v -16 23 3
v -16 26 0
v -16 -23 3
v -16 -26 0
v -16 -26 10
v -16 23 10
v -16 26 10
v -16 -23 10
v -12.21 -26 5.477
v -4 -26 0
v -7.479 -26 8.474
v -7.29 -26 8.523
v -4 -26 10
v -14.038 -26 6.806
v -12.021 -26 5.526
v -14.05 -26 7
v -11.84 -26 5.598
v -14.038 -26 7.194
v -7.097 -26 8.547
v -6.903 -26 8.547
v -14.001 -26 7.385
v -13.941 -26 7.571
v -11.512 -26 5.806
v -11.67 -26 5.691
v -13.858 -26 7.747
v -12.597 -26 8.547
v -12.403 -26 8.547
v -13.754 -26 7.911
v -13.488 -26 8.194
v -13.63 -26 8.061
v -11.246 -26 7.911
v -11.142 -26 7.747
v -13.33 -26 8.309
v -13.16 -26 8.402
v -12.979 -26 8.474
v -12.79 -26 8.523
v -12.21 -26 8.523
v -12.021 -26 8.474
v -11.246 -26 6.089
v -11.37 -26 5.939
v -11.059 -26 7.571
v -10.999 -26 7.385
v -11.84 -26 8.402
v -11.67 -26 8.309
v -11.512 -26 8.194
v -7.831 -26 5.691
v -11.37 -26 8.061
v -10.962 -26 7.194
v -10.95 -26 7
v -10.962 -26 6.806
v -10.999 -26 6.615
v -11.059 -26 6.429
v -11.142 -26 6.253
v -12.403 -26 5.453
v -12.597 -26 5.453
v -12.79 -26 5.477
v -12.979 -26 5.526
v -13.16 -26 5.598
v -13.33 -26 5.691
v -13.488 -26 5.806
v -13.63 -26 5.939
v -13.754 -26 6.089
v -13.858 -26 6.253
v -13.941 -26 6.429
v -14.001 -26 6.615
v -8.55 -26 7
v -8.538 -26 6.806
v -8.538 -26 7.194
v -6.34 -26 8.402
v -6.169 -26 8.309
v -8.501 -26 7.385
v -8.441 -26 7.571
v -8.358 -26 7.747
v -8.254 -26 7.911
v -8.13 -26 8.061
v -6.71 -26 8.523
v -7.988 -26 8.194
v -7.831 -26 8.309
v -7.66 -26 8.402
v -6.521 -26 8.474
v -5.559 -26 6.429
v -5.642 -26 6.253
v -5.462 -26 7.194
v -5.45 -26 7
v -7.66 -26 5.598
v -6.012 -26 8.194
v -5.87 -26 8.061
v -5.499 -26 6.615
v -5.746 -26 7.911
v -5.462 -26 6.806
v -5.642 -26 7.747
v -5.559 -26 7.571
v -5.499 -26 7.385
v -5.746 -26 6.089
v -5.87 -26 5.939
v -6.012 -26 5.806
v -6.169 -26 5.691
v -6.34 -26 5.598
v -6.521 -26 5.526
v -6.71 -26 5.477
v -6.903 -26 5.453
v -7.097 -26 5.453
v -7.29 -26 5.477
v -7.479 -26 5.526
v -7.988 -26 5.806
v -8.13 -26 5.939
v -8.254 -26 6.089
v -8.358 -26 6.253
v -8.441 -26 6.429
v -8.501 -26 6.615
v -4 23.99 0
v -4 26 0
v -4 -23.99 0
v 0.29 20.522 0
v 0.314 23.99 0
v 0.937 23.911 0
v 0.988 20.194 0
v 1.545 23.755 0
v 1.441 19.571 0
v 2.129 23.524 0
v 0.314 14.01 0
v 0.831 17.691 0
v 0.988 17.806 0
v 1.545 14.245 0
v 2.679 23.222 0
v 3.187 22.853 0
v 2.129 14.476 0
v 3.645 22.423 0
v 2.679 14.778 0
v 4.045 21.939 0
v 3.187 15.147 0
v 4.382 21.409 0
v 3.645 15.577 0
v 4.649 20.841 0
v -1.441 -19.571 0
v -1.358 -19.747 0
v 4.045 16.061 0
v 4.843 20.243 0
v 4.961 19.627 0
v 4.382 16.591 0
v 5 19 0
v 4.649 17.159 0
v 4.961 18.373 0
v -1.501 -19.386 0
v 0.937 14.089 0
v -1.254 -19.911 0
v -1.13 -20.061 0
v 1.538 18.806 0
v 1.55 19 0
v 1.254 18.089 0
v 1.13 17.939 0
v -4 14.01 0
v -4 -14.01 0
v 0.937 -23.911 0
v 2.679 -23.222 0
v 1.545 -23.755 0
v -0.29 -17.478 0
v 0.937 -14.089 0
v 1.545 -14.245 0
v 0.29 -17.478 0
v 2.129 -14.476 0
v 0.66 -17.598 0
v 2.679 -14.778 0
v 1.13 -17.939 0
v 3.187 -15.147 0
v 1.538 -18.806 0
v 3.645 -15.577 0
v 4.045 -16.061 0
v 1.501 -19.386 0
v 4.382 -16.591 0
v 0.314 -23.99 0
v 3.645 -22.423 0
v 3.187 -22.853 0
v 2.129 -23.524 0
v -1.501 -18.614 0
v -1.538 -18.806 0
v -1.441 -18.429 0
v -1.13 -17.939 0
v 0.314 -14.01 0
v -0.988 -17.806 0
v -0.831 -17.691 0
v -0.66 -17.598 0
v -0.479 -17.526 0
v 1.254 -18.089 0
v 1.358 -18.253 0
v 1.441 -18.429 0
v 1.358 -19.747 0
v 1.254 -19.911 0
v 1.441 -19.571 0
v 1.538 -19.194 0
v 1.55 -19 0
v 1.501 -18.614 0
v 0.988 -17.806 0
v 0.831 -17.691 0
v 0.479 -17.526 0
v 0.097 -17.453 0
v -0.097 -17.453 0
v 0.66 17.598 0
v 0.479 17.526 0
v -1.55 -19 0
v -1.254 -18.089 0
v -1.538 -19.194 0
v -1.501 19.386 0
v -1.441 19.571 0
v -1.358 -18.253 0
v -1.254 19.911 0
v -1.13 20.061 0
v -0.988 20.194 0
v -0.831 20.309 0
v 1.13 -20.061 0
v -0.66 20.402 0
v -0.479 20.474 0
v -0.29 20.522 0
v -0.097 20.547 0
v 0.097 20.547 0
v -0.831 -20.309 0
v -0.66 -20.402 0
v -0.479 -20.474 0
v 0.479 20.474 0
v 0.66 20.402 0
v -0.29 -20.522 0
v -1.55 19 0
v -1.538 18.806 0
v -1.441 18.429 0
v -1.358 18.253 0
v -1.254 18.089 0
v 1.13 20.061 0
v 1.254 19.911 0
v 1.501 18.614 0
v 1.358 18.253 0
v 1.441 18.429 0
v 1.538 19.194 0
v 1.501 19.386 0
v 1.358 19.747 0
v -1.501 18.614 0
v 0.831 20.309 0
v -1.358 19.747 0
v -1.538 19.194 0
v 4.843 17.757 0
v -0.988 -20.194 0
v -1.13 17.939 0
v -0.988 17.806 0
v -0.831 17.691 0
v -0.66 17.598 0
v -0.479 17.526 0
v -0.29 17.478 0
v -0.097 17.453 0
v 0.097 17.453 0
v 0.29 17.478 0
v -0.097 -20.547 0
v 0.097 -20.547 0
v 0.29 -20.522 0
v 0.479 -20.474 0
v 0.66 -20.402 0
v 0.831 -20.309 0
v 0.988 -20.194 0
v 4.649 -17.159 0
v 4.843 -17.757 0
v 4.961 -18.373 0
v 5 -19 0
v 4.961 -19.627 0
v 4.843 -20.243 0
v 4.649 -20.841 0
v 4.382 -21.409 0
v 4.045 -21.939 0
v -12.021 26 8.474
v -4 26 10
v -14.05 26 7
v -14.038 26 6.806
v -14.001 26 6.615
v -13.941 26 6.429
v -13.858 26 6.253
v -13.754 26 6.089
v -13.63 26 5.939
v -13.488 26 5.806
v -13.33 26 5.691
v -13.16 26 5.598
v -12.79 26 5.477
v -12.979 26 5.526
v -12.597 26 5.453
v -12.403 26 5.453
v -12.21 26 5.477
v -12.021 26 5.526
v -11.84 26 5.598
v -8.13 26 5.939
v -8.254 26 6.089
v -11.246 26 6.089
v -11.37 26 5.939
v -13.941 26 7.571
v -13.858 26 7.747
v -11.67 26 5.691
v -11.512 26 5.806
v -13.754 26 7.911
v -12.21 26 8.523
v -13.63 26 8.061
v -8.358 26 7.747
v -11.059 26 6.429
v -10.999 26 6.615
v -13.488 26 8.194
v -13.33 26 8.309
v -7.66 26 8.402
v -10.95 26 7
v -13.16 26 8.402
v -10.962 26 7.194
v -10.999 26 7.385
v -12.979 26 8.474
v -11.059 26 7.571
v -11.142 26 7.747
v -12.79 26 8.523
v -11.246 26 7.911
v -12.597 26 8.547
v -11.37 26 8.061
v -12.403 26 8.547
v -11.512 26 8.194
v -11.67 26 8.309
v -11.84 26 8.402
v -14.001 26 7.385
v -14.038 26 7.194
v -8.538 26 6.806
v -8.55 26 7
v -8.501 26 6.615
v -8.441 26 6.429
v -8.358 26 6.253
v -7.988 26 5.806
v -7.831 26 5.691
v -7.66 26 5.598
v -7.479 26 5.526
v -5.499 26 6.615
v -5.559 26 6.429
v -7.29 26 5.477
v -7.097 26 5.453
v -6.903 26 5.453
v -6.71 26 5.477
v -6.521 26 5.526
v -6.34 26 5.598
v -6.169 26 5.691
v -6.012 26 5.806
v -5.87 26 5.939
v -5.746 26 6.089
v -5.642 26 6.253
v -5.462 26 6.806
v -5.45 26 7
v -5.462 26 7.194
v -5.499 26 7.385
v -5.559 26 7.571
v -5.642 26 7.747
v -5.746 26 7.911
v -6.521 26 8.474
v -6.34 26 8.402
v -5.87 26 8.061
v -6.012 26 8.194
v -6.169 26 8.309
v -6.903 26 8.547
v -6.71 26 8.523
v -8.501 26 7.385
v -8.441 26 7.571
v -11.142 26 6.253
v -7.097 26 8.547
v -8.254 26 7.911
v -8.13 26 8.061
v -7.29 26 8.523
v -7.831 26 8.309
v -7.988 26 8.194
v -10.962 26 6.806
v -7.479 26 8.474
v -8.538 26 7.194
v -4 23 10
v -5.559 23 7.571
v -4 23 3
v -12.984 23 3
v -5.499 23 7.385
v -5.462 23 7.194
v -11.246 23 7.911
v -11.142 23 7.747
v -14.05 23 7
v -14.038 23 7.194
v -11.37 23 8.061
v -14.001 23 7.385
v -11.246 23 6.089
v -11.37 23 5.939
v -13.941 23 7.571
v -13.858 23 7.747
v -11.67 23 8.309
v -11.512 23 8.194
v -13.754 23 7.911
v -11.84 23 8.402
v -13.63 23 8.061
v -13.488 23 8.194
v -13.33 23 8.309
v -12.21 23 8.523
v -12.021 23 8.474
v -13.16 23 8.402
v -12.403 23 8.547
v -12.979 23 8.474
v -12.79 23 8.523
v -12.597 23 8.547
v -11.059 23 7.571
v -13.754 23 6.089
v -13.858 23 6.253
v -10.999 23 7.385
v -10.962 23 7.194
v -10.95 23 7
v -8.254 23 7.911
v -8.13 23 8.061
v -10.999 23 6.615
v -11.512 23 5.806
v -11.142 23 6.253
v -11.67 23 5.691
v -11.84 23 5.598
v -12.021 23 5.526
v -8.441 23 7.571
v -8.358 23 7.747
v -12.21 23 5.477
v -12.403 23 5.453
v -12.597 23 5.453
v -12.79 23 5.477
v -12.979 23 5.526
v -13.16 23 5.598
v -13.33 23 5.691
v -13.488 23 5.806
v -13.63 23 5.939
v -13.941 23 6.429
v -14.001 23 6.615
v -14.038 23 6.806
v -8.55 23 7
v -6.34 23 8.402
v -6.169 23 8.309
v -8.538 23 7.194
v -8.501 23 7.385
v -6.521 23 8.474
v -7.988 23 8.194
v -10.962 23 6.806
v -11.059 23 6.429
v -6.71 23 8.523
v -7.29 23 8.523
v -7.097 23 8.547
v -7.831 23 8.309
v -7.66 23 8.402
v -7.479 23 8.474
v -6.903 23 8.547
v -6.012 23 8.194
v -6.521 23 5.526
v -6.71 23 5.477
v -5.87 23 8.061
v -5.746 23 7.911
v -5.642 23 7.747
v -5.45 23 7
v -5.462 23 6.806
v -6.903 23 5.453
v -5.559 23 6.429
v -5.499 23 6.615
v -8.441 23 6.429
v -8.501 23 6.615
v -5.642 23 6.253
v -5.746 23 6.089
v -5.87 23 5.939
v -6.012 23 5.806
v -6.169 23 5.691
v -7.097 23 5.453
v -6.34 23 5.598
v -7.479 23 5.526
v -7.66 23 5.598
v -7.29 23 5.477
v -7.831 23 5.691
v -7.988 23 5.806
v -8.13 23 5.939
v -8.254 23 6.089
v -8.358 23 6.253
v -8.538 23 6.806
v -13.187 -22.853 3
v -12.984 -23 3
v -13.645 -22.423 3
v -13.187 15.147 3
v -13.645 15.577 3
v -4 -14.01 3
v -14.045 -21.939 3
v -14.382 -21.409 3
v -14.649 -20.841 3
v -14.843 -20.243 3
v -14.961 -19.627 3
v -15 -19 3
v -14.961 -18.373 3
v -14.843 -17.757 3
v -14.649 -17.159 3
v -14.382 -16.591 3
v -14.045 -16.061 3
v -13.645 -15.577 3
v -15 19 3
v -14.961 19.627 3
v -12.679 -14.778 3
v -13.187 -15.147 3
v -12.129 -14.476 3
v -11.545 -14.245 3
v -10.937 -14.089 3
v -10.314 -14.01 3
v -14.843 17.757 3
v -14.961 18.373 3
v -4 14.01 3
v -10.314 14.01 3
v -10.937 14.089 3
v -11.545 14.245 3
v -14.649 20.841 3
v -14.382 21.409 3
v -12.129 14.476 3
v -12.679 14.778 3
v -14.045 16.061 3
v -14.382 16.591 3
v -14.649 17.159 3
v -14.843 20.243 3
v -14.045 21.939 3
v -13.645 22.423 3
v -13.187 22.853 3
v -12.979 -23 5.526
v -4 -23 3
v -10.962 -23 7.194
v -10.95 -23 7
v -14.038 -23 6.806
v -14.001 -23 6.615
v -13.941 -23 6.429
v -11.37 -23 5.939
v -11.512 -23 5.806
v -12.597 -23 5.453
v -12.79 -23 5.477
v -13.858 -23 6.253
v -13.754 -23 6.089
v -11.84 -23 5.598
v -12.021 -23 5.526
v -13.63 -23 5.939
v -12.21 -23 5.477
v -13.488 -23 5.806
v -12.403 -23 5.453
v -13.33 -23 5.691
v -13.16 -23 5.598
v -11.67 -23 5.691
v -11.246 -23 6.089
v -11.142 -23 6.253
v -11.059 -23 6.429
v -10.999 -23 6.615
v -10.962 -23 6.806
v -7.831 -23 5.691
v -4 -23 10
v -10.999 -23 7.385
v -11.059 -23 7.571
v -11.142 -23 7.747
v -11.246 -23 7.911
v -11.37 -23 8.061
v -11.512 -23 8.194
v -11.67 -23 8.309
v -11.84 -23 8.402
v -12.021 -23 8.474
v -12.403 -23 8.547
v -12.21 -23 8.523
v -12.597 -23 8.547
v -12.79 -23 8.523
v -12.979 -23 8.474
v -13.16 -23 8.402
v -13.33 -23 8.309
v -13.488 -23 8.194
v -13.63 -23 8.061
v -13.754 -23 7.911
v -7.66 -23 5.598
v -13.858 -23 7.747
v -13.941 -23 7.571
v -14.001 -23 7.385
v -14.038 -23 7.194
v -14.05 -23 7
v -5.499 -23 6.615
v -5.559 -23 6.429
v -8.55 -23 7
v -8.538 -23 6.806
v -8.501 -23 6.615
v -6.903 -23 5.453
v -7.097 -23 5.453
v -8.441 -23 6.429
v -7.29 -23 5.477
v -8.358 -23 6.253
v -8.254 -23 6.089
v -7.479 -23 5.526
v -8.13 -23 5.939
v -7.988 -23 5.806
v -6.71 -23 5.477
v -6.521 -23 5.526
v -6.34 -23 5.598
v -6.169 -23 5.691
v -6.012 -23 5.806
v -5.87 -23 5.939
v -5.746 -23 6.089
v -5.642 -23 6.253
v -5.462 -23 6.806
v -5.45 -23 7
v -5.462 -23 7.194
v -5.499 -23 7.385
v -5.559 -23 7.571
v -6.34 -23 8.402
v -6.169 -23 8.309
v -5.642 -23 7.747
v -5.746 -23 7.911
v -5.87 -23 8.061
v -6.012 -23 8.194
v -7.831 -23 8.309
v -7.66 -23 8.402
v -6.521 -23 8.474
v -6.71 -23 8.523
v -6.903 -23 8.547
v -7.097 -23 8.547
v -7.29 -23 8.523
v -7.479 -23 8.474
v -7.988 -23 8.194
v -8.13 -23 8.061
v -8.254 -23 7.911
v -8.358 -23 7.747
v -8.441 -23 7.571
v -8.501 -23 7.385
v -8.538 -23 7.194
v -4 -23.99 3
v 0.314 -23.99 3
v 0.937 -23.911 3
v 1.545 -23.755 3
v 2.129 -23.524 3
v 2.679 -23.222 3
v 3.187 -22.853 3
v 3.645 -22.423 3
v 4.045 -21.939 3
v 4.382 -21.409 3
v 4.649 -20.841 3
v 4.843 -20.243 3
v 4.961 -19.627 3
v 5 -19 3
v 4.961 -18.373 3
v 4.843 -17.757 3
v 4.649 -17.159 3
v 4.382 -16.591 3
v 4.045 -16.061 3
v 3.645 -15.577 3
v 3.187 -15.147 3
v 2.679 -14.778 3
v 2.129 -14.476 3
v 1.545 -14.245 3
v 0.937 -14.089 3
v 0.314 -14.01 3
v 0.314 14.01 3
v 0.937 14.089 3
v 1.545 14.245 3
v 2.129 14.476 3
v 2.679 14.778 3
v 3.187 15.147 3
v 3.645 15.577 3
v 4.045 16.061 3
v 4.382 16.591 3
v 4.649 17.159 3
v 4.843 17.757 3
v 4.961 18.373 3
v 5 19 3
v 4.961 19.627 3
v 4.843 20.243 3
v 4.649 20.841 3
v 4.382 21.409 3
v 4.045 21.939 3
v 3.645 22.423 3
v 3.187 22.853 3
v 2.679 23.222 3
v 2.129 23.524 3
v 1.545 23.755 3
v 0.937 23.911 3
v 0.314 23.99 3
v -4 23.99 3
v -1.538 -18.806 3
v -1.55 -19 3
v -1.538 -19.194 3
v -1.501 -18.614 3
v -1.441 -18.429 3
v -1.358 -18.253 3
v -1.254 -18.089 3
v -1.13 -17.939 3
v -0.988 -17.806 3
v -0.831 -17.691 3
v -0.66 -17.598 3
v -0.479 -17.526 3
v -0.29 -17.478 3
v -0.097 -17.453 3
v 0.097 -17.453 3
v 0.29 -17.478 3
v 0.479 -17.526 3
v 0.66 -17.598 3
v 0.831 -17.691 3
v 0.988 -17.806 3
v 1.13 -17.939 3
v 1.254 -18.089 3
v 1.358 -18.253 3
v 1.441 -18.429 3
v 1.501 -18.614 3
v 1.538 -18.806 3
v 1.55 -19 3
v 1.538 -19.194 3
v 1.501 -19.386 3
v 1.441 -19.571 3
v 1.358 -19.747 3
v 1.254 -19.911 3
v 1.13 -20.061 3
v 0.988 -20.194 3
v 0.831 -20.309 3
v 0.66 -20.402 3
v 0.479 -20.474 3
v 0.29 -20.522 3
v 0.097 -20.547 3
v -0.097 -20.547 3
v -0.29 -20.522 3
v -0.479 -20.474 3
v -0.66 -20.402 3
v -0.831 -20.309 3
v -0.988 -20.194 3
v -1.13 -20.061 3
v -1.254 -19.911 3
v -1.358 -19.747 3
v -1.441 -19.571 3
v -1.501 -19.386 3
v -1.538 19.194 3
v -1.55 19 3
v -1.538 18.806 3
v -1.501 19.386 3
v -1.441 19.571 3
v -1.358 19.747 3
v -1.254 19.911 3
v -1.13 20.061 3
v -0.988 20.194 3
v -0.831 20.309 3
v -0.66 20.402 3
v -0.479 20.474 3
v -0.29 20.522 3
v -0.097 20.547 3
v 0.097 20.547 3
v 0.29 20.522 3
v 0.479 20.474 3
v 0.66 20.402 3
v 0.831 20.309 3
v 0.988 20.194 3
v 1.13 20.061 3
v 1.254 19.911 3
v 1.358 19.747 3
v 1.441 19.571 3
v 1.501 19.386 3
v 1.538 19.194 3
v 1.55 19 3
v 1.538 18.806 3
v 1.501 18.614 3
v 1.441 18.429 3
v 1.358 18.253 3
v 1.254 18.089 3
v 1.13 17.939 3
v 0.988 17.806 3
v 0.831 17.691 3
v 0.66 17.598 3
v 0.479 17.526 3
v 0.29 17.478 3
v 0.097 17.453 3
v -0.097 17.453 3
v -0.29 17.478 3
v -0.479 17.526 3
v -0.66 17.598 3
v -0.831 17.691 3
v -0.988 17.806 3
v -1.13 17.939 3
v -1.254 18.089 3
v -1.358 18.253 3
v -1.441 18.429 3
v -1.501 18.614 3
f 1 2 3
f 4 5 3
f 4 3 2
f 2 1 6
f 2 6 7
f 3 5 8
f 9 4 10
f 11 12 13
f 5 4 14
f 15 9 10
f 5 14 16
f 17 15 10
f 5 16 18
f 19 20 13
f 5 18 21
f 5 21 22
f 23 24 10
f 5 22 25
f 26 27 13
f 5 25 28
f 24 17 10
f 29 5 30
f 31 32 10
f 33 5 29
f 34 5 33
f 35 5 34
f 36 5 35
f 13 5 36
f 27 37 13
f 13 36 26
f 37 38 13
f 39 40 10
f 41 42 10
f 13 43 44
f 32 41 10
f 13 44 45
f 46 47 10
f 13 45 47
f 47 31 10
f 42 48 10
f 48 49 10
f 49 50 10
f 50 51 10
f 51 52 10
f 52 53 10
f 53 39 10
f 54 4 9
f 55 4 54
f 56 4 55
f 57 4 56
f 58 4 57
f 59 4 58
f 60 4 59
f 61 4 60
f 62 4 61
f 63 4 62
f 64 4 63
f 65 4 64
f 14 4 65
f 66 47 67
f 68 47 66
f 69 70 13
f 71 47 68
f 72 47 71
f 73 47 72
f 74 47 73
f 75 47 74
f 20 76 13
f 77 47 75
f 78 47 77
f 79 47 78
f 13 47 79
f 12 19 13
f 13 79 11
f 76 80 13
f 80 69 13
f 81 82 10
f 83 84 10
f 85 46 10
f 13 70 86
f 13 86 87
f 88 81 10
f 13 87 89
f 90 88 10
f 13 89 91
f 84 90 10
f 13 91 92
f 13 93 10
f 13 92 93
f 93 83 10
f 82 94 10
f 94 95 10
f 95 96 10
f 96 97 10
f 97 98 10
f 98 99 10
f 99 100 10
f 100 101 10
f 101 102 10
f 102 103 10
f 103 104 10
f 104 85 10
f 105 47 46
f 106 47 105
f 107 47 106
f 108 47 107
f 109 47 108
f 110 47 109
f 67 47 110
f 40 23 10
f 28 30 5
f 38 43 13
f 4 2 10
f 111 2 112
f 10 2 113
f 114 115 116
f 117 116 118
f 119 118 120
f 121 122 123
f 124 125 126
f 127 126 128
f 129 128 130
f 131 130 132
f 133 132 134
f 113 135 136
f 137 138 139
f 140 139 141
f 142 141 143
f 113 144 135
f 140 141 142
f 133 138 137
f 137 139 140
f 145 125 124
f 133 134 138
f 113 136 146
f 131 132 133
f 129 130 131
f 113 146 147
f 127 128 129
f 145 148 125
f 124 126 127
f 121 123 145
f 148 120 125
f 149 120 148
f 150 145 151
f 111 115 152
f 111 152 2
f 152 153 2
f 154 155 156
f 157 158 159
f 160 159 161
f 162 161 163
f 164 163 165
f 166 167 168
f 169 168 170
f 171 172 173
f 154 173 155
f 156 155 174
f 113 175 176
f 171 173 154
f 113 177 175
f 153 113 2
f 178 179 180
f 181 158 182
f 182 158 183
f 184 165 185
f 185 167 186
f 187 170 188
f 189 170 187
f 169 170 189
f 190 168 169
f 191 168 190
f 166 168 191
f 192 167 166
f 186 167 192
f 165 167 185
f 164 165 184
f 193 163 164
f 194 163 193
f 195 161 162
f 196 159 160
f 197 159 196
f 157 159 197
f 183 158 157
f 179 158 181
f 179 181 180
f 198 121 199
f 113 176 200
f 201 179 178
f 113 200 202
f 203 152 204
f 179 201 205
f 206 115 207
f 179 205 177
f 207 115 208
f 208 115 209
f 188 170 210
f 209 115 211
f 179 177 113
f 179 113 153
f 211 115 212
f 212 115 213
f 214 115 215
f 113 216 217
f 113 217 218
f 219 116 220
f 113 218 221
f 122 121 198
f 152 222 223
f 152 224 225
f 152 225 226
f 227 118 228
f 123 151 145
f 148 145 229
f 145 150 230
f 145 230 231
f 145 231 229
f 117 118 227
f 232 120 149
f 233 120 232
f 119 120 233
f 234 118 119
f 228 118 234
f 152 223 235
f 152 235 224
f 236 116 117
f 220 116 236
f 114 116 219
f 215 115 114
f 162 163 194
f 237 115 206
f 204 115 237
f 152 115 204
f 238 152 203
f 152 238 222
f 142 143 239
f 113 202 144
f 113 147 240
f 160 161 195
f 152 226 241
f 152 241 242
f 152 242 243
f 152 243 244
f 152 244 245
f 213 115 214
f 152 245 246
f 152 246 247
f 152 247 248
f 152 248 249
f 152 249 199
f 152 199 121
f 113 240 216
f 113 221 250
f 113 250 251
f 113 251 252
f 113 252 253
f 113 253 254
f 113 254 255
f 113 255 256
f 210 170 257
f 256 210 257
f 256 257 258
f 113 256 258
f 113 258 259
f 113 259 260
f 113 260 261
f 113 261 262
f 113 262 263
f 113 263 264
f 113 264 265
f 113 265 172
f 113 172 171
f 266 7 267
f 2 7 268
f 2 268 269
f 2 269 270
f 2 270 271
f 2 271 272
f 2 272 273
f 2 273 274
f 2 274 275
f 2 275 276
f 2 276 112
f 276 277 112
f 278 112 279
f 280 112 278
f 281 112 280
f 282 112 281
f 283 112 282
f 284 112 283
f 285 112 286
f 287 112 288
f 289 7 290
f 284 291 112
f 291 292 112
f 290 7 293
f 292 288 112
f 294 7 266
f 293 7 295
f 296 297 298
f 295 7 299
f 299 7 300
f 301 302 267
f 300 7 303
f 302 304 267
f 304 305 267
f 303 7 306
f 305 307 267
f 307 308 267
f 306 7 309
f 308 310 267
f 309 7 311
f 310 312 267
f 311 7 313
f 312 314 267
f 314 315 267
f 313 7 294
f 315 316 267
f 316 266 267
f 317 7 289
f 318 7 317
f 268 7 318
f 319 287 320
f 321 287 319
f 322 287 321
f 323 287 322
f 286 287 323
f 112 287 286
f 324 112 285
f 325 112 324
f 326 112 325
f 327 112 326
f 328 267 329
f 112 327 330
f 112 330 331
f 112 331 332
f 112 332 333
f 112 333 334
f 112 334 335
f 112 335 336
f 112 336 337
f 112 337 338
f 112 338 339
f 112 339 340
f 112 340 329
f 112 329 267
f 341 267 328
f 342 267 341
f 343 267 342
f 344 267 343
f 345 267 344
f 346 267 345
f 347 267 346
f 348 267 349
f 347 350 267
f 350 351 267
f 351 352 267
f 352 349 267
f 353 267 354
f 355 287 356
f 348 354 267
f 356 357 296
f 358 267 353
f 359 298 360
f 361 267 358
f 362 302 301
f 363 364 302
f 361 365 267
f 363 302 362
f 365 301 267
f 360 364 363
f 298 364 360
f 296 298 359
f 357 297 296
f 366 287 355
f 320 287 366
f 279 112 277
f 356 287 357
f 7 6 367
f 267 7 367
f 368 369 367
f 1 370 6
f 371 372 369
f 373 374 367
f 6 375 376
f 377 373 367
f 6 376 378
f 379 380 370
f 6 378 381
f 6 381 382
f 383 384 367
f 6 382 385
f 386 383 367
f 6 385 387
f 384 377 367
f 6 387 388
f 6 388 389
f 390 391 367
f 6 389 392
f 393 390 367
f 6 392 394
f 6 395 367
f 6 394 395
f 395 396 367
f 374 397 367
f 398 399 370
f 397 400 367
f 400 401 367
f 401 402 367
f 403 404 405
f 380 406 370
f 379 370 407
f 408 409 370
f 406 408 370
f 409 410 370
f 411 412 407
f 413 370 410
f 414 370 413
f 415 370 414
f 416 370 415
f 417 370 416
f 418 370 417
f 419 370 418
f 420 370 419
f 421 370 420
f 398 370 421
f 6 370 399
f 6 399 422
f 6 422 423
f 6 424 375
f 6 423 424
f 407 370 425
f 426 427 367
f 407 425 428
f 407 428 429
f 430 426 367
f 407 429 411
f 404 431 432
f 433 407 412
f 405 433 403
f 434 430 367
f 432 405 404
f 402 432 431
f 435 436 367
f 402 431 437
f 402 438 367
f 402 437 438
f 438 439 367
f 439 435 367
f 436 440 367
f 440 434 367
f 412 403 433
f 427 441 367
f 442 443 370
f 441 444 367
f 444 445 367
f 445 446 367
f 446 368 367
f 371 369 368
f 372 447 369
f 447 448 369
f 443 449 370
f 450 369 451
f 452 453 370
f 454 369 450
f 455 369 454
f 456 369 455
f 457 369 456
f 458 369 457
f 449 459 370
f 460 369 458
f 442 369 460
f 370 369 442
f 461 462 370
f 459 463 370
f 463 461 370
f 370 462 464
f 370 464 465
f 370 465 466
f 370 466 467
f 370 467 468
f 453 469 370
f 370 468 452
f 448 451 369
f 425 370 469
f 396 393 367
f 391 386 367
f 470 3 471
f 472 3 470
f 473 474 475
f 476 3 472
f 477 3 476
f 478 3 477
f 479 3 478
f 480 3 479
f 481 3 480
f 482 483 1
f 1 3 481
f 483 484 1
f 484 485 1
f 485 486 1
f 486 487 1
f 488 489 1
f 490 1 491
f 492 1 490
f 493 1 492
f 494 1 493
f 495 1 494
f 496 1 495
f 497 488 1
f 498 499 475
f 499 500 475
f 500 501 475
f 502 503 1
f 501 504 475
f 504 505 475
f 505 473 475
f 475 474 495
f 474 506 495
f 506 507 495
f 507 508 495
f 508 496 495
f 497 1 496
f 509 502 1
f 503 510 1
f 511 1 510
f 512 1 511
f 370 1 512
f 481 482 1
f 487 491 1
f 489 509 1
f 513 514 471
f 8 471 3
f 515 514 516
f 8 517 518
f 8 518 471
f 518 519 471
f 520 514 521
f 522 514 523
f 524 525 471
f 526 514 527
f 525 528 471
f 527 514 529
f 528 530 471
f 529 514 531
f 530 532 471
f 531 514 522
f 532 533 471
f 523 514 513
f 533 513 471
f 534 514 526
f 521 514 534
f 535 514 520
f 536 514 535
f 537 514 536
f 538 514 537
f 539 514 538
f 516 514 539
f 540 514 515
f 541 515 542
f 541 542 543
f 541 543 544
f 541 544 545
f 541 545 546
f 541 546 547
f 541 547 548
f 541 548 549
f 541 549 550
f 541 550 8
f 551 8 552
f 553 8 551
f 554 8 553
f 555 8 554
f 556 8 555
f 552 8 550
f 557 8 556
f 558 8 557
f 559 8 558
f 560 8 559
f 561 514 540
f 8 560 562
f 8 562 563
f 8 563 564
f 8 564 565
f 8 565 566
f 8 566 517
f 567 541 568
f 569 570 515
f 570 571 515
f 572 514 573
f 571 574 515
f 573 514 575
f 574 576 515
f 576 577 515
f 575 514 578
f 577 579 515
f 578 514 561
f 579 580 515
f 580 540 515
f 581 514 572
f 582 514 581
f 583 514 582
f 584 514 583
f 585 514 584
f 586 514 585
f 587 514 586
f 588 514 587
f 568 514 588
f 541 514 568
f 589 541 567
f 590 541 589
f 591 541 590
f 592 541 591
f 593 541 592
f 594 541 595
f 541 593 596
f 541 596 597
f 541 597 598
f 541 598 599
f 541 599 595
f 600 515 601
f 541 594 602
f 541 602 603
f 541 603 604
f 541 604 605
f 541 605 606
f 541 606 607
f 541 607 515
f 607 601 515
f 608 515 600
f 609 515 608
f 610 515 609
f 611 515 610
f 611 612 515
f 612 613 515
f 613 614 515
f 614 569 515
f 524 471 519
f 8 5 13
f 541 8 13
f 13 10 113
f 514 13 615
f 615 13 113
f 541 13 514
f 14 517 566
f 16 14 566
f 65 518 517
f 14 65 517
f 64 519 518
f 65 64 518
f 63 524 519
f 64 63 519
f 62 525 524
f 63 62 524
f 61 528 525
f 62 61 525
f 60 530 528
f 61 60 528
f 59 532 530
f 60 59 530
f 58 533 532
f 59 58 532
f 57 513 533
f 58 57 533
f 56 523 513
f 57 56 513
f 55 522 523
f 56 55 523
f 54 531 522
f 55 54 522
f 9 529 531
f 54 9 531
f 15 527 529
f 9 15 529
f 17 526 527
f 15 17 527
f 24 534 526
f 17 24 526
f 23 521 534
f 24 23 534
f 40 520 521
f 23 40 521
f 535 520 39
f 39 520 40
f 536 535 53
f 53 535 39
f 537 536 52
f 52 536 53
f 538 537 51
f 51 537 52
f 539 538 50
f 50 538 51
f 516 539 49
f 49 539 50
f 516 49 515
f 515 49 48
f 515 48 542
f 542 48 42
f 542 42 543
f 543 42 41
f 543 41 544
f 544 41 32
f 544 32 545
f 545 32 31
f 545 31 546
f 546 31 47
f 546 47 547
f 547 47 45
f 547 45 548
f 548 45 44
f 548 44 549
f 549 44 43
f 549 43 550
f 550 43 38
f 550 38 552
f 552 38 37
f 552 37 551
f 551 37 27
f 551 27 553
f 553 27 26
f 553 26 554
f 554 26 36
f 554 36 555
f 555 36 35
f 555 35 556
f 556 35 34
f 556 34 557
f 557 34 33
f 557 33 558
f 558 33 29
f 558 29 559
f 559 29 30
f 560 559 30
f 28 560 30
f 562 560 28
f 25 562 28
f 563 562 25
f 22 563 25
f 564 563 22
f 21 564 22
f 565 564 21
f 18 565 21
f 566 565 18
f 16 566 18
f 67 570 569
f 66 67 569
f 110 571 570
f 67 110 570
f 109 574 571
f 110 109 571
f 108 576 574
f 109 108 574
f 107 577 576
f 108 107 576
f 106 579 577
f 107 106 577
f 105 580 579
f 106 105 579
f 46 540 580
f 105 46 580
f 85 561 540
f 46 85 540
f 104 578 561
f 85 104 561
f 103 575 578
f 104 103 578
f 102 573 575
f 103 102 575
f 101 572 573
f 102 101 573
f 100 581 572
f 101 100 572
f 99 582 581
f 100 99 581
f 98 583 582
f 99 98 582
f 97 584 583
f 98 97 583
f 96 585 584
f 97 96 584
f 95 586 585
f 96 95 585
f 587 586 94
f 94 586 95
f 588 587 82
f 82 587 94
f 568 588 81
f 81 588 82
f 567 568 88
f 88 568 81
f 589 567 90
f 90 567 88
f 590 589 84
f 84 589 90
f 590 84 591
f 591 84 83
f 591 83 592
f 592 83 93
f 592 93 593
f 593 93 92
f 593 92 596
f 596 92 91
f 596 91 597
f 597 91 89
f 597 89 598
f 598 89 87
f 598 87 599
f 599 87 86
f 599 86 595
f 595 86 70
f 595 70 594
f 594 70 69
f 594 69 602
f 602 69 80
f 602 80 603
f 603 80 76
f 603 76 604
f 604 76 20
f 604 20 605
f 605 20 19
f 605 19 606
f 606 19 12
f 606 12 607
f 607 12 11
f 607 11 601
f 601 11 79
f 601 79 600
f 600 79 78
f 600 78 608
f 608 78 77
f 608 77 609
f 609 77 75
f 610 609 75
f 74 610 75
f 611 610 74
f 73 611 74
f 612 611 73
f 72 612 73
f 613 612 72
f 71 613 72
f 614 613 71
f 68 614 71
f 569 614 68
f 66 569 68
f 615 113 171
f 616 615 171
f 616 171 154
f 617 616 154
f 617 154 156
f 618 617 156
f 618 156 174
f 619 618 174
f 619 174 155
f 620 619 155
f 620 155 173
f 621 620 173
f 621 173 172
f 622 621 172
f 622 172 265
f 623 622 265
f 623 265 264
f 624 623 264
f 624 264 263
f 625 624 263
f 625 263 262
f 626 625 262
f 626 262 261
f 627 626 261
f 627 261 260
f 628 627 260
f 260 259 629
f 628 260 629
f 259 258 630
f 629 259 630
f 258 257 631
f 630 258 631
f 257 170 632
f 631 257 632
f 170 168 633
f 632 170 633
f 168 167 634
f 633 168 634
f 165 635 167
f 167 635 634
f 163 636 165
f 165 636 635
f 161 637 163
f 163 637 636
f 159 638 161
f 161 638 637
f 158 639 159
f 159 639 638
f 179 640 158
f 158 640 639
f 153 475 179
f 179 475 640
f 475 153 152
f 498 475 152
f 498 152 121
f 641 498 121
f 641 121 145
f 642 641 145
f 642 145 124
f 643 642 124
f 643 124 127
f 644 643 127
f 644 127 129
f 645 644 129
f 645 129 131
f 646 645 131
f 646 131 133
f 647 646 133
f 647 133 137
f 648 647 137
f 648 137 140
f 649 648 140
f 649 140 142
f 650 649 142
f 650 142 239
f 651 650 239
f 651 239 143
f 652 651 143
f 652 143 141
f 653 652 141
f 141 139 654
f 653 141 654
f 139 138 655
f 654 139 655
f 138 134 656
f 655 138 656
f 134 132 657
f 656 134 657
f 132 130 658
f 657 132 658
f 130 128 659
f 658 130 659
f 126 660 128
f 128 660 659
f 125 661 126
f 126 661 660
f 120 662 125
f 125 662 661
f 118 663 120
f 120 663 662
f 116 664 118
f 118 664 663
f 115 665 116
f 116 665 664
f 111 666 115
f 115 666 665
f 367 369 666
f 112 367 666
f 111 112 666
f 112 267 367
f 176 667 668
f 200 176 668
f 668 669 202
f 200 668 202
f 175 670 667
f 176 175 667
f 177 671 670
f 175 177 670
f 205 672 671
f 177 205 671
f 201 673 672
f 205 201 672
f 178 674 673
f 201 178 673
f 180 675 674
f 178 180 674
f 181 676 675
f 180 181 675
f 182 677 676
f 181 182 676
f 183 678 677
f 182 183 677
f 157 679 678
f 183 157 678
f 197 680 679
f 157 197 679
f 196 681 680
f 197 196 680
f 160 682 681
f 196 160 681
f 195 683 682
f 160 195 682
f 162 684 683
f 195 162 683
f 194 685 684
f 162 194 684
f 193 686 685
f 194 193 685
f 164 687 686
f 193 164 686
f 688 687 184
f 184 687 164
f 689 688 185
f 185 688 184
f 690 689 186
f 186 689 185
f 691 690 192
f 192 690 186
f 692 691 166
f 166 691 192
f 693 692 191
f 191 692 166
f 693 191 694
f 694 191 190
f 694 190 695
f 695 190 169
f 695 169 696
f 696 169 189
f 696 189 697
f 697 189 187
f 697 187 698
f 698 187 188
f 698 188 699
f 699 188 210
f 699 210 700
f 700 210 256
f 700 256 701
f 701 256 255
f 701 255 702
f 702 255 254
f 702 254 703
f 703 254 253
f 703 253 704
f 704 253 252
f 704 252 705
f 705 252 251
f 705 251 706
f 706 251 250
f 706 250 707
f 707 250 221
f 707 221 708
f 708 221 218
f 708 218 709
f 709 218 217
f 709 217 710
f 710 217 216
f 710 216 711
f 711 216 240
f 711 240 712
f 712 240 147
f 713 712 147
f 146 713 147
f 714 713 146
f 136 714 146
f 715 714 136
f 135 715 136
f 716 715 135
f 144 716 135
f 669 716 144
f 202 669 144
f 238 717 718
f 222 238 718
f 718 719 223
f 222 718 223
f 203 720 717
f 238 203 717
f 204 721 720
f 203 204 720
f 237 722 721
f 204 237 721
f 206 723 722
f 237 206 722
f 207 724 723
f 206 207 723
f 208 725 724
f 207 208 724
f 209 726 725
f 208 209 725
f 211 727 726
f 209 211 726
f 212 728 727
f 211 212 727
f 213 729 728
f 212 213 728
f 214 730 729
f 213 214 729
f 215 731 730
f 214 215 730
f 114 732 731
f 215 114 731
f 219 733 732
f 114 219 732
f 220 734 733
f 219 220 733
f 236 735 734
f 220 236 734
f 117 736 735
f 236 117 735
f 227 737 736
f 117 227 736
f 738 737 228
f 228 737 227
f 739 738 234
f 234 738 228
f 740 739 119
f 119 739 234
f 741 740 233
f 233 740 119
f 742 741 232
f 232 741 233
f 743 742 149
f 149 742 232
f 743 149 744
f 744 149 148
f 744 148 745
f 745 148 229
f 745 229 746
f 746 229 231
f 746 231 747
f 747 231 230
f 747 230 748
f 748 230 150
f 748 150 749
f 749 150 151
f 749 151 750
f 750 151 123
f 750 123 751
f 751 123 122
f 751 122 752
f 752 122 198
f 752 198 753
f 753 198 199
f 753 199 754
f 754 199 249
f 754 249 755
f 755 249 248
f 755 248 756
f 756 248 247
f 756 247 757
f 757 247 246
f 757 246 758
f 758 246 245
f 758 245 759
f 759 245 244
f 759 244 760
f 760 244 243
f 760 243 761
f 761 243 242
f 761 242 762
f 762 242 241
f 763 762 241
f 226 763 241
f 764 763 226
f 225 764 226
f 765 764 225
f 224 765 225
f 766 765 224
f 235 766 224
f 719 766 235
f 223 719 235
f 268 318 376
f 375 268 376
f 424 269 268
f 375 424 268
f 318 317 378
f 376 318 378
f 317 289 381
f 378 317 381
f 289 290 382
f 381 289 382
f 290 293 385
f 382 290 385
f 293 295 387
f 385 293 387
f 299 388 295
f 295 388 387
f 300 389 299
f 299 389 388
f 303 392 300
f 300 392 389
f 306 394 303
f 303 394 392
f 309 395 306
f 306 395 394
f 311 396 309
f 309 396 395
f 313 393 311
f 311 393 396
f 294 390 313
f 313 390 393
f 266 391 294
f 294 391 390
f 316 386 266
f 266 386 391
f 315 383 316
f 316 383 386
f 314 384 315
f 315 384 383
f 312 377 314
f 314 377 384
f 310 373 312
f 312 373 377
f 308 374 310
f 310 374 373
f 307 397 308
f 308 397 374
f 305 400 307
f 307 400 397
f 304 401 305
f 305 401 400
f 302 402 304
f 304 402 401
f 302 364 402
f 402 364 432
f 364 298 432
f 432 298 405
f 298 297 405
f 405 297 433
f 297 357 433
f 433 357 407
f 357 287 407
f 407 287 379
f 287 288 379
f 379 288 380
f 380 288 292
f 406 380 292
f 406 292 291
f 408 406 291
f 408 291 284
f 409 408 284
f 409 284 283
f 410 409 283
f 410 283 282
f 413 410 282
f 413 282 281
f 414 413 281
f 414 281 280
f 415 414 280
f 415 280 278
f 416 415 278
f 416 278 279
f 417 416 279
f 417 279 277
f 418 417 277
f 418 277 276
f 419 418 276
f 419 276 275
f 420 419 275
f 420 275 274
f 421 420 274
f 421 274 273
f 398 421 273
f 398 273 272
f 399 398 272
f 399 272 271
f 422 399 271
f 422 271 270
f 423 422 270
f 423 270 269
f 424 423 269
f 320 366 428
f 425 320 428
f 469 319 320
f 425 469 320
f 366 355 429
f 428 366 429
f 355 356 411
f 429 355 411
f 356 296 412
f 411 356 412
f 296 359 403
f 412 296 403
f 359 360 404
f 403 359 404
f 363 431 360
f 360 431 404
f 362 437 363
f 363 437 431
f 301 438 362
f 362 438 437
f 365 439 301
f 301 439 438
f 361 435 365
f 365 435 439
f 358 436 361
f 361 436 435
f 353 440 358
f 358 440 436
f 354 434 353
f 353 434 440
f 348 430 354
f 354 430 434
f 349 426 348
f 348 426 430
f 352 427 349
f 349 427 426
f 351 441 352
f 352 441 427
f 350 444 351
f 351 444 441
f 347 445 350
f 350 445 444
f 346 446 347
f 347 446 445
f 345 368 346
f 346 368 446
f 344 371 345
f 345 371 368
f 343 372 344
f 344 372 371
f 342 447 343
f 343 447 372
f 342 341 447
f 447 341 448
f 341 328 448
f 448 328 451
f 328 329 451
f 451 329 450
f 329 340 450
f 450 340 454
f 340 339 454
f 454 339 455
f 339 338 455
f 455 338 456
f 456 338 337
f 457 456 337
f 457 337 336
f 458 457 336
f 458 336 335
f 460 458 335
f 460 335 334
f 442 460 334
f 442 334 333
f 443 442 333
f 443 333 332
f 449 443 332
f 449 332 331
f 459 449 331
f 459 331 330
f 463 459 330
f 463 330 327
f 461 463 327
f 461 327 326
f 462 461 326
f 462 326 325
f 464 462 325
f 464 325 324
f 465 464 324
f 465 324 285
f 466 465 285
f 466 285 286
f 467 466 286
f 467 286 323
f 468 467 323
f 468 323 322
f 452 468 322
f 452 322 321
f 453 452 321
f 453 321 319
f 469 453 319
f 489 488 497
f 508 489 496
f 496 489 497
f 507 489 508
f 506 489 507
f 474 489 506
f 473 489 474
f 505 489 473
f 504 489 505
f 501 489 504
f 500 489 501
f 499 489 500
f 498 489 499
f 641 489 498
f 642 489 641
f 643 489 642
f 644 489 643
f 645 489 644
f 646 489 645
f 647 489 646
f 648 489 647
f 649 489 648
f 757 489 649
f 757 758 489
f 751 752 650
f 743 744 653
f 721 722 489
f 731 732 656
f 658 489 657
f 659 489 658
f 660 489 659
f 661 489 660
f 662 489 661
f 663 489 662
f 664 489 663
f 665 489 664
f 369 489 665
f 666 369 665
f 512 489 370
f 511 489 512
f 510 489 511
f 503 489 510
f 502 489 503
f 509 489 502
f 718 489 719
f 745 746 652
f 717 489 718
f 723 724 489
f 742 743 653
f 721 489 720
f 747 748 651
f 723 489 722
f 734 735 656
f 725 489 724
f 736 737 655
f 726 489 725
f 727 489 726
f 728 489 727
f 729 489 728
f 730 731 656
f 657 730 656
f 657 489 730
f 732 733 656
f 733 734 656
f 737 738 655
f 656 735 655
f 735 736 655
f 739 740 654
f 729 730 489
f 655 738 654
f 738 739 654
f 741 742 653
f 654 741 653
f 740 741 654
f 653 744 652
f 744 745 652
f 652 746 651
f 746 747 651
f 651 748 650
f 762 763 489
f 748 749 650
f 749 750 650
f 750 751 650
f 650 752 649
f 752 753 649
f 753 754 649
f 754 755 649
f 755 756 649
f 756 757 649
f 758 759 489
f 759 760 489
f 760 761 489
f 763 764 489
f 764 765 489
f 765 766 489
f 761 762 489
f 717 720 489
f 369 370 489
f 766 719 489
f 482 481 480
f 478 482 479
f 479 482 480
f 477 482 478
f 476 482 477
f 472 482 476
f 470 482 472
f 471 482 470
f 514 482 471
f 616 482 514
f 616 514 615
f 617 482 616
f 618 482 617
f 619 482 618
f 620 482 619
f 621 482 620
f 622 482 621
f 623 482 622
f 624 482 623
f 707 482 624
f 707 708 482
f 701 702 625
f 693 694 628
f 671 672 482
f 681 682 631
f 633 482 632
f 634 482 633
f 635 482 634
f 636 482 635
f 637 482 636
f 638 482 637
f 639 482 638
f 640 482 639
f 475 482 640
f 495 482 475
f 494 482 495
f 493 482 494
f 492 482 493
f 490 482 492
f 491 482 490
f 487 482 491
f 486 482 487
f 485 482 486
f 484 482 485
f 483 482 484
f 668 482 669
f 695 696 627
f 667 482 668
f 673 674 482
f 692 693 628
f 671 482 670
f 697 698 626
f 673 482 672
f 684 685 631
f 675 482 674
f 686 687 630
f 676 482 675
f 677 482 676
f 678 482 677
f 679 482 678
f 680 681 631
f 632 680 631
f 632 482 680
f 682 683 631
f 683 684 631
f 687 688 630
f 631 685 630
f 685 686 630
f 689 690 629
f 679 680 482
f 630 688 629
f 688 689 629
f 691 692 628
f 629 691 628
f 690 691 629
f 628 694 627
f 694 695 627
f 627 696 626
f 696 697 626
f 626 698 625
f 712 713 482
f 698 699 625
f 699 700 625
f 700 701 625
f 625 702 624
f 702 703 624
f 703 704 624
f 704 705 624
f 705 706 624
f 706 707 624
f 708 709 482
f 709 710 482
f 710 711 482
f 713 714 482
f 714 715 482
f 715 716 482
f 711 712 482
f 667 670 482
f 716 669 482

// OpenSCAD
$fn = 50;


/*
difference(){
	cylinder(h = 15, r=19.5);	

	translate([0,0,-1])
	cylinder(h = 17, r=17.5);
}
*/

translate([0,0,0])
union() {
	difference() {
		union() {
			hull() {
				translate([0,19,0])
				cylinder(h = 3, r=5);
				translate([-10,19,0])
				cylinder(h = 3, r=5);
			}
				

			hull() {
				translate([0,-19,0])
				cylinder(h = 3, r=5);
				translate([-10,-19,0])
				cylinder(h = 3, r=5);	
			}
		}
		translate([0,19,-1])
		cylinder(h = 6, r=1.55);
		translate([0,-19,-1])
		cylinder(h = 6, r=1.55);
	}



	difference() {
		translate([-10,0,5]) cube(size=[12,52,10],center=true);	

		translate([-10,0,7]) cube(size=[20,46,8],center=true);

		translate([-7,30,7])
		rotate(a=[90,0,0])
		cylinder(h = 60, r=1.55);

		translate([-12.5,30,7])
		rotate(a=[90,0,0])
		cylinder(h = 60, r=1.55);

	}
}
